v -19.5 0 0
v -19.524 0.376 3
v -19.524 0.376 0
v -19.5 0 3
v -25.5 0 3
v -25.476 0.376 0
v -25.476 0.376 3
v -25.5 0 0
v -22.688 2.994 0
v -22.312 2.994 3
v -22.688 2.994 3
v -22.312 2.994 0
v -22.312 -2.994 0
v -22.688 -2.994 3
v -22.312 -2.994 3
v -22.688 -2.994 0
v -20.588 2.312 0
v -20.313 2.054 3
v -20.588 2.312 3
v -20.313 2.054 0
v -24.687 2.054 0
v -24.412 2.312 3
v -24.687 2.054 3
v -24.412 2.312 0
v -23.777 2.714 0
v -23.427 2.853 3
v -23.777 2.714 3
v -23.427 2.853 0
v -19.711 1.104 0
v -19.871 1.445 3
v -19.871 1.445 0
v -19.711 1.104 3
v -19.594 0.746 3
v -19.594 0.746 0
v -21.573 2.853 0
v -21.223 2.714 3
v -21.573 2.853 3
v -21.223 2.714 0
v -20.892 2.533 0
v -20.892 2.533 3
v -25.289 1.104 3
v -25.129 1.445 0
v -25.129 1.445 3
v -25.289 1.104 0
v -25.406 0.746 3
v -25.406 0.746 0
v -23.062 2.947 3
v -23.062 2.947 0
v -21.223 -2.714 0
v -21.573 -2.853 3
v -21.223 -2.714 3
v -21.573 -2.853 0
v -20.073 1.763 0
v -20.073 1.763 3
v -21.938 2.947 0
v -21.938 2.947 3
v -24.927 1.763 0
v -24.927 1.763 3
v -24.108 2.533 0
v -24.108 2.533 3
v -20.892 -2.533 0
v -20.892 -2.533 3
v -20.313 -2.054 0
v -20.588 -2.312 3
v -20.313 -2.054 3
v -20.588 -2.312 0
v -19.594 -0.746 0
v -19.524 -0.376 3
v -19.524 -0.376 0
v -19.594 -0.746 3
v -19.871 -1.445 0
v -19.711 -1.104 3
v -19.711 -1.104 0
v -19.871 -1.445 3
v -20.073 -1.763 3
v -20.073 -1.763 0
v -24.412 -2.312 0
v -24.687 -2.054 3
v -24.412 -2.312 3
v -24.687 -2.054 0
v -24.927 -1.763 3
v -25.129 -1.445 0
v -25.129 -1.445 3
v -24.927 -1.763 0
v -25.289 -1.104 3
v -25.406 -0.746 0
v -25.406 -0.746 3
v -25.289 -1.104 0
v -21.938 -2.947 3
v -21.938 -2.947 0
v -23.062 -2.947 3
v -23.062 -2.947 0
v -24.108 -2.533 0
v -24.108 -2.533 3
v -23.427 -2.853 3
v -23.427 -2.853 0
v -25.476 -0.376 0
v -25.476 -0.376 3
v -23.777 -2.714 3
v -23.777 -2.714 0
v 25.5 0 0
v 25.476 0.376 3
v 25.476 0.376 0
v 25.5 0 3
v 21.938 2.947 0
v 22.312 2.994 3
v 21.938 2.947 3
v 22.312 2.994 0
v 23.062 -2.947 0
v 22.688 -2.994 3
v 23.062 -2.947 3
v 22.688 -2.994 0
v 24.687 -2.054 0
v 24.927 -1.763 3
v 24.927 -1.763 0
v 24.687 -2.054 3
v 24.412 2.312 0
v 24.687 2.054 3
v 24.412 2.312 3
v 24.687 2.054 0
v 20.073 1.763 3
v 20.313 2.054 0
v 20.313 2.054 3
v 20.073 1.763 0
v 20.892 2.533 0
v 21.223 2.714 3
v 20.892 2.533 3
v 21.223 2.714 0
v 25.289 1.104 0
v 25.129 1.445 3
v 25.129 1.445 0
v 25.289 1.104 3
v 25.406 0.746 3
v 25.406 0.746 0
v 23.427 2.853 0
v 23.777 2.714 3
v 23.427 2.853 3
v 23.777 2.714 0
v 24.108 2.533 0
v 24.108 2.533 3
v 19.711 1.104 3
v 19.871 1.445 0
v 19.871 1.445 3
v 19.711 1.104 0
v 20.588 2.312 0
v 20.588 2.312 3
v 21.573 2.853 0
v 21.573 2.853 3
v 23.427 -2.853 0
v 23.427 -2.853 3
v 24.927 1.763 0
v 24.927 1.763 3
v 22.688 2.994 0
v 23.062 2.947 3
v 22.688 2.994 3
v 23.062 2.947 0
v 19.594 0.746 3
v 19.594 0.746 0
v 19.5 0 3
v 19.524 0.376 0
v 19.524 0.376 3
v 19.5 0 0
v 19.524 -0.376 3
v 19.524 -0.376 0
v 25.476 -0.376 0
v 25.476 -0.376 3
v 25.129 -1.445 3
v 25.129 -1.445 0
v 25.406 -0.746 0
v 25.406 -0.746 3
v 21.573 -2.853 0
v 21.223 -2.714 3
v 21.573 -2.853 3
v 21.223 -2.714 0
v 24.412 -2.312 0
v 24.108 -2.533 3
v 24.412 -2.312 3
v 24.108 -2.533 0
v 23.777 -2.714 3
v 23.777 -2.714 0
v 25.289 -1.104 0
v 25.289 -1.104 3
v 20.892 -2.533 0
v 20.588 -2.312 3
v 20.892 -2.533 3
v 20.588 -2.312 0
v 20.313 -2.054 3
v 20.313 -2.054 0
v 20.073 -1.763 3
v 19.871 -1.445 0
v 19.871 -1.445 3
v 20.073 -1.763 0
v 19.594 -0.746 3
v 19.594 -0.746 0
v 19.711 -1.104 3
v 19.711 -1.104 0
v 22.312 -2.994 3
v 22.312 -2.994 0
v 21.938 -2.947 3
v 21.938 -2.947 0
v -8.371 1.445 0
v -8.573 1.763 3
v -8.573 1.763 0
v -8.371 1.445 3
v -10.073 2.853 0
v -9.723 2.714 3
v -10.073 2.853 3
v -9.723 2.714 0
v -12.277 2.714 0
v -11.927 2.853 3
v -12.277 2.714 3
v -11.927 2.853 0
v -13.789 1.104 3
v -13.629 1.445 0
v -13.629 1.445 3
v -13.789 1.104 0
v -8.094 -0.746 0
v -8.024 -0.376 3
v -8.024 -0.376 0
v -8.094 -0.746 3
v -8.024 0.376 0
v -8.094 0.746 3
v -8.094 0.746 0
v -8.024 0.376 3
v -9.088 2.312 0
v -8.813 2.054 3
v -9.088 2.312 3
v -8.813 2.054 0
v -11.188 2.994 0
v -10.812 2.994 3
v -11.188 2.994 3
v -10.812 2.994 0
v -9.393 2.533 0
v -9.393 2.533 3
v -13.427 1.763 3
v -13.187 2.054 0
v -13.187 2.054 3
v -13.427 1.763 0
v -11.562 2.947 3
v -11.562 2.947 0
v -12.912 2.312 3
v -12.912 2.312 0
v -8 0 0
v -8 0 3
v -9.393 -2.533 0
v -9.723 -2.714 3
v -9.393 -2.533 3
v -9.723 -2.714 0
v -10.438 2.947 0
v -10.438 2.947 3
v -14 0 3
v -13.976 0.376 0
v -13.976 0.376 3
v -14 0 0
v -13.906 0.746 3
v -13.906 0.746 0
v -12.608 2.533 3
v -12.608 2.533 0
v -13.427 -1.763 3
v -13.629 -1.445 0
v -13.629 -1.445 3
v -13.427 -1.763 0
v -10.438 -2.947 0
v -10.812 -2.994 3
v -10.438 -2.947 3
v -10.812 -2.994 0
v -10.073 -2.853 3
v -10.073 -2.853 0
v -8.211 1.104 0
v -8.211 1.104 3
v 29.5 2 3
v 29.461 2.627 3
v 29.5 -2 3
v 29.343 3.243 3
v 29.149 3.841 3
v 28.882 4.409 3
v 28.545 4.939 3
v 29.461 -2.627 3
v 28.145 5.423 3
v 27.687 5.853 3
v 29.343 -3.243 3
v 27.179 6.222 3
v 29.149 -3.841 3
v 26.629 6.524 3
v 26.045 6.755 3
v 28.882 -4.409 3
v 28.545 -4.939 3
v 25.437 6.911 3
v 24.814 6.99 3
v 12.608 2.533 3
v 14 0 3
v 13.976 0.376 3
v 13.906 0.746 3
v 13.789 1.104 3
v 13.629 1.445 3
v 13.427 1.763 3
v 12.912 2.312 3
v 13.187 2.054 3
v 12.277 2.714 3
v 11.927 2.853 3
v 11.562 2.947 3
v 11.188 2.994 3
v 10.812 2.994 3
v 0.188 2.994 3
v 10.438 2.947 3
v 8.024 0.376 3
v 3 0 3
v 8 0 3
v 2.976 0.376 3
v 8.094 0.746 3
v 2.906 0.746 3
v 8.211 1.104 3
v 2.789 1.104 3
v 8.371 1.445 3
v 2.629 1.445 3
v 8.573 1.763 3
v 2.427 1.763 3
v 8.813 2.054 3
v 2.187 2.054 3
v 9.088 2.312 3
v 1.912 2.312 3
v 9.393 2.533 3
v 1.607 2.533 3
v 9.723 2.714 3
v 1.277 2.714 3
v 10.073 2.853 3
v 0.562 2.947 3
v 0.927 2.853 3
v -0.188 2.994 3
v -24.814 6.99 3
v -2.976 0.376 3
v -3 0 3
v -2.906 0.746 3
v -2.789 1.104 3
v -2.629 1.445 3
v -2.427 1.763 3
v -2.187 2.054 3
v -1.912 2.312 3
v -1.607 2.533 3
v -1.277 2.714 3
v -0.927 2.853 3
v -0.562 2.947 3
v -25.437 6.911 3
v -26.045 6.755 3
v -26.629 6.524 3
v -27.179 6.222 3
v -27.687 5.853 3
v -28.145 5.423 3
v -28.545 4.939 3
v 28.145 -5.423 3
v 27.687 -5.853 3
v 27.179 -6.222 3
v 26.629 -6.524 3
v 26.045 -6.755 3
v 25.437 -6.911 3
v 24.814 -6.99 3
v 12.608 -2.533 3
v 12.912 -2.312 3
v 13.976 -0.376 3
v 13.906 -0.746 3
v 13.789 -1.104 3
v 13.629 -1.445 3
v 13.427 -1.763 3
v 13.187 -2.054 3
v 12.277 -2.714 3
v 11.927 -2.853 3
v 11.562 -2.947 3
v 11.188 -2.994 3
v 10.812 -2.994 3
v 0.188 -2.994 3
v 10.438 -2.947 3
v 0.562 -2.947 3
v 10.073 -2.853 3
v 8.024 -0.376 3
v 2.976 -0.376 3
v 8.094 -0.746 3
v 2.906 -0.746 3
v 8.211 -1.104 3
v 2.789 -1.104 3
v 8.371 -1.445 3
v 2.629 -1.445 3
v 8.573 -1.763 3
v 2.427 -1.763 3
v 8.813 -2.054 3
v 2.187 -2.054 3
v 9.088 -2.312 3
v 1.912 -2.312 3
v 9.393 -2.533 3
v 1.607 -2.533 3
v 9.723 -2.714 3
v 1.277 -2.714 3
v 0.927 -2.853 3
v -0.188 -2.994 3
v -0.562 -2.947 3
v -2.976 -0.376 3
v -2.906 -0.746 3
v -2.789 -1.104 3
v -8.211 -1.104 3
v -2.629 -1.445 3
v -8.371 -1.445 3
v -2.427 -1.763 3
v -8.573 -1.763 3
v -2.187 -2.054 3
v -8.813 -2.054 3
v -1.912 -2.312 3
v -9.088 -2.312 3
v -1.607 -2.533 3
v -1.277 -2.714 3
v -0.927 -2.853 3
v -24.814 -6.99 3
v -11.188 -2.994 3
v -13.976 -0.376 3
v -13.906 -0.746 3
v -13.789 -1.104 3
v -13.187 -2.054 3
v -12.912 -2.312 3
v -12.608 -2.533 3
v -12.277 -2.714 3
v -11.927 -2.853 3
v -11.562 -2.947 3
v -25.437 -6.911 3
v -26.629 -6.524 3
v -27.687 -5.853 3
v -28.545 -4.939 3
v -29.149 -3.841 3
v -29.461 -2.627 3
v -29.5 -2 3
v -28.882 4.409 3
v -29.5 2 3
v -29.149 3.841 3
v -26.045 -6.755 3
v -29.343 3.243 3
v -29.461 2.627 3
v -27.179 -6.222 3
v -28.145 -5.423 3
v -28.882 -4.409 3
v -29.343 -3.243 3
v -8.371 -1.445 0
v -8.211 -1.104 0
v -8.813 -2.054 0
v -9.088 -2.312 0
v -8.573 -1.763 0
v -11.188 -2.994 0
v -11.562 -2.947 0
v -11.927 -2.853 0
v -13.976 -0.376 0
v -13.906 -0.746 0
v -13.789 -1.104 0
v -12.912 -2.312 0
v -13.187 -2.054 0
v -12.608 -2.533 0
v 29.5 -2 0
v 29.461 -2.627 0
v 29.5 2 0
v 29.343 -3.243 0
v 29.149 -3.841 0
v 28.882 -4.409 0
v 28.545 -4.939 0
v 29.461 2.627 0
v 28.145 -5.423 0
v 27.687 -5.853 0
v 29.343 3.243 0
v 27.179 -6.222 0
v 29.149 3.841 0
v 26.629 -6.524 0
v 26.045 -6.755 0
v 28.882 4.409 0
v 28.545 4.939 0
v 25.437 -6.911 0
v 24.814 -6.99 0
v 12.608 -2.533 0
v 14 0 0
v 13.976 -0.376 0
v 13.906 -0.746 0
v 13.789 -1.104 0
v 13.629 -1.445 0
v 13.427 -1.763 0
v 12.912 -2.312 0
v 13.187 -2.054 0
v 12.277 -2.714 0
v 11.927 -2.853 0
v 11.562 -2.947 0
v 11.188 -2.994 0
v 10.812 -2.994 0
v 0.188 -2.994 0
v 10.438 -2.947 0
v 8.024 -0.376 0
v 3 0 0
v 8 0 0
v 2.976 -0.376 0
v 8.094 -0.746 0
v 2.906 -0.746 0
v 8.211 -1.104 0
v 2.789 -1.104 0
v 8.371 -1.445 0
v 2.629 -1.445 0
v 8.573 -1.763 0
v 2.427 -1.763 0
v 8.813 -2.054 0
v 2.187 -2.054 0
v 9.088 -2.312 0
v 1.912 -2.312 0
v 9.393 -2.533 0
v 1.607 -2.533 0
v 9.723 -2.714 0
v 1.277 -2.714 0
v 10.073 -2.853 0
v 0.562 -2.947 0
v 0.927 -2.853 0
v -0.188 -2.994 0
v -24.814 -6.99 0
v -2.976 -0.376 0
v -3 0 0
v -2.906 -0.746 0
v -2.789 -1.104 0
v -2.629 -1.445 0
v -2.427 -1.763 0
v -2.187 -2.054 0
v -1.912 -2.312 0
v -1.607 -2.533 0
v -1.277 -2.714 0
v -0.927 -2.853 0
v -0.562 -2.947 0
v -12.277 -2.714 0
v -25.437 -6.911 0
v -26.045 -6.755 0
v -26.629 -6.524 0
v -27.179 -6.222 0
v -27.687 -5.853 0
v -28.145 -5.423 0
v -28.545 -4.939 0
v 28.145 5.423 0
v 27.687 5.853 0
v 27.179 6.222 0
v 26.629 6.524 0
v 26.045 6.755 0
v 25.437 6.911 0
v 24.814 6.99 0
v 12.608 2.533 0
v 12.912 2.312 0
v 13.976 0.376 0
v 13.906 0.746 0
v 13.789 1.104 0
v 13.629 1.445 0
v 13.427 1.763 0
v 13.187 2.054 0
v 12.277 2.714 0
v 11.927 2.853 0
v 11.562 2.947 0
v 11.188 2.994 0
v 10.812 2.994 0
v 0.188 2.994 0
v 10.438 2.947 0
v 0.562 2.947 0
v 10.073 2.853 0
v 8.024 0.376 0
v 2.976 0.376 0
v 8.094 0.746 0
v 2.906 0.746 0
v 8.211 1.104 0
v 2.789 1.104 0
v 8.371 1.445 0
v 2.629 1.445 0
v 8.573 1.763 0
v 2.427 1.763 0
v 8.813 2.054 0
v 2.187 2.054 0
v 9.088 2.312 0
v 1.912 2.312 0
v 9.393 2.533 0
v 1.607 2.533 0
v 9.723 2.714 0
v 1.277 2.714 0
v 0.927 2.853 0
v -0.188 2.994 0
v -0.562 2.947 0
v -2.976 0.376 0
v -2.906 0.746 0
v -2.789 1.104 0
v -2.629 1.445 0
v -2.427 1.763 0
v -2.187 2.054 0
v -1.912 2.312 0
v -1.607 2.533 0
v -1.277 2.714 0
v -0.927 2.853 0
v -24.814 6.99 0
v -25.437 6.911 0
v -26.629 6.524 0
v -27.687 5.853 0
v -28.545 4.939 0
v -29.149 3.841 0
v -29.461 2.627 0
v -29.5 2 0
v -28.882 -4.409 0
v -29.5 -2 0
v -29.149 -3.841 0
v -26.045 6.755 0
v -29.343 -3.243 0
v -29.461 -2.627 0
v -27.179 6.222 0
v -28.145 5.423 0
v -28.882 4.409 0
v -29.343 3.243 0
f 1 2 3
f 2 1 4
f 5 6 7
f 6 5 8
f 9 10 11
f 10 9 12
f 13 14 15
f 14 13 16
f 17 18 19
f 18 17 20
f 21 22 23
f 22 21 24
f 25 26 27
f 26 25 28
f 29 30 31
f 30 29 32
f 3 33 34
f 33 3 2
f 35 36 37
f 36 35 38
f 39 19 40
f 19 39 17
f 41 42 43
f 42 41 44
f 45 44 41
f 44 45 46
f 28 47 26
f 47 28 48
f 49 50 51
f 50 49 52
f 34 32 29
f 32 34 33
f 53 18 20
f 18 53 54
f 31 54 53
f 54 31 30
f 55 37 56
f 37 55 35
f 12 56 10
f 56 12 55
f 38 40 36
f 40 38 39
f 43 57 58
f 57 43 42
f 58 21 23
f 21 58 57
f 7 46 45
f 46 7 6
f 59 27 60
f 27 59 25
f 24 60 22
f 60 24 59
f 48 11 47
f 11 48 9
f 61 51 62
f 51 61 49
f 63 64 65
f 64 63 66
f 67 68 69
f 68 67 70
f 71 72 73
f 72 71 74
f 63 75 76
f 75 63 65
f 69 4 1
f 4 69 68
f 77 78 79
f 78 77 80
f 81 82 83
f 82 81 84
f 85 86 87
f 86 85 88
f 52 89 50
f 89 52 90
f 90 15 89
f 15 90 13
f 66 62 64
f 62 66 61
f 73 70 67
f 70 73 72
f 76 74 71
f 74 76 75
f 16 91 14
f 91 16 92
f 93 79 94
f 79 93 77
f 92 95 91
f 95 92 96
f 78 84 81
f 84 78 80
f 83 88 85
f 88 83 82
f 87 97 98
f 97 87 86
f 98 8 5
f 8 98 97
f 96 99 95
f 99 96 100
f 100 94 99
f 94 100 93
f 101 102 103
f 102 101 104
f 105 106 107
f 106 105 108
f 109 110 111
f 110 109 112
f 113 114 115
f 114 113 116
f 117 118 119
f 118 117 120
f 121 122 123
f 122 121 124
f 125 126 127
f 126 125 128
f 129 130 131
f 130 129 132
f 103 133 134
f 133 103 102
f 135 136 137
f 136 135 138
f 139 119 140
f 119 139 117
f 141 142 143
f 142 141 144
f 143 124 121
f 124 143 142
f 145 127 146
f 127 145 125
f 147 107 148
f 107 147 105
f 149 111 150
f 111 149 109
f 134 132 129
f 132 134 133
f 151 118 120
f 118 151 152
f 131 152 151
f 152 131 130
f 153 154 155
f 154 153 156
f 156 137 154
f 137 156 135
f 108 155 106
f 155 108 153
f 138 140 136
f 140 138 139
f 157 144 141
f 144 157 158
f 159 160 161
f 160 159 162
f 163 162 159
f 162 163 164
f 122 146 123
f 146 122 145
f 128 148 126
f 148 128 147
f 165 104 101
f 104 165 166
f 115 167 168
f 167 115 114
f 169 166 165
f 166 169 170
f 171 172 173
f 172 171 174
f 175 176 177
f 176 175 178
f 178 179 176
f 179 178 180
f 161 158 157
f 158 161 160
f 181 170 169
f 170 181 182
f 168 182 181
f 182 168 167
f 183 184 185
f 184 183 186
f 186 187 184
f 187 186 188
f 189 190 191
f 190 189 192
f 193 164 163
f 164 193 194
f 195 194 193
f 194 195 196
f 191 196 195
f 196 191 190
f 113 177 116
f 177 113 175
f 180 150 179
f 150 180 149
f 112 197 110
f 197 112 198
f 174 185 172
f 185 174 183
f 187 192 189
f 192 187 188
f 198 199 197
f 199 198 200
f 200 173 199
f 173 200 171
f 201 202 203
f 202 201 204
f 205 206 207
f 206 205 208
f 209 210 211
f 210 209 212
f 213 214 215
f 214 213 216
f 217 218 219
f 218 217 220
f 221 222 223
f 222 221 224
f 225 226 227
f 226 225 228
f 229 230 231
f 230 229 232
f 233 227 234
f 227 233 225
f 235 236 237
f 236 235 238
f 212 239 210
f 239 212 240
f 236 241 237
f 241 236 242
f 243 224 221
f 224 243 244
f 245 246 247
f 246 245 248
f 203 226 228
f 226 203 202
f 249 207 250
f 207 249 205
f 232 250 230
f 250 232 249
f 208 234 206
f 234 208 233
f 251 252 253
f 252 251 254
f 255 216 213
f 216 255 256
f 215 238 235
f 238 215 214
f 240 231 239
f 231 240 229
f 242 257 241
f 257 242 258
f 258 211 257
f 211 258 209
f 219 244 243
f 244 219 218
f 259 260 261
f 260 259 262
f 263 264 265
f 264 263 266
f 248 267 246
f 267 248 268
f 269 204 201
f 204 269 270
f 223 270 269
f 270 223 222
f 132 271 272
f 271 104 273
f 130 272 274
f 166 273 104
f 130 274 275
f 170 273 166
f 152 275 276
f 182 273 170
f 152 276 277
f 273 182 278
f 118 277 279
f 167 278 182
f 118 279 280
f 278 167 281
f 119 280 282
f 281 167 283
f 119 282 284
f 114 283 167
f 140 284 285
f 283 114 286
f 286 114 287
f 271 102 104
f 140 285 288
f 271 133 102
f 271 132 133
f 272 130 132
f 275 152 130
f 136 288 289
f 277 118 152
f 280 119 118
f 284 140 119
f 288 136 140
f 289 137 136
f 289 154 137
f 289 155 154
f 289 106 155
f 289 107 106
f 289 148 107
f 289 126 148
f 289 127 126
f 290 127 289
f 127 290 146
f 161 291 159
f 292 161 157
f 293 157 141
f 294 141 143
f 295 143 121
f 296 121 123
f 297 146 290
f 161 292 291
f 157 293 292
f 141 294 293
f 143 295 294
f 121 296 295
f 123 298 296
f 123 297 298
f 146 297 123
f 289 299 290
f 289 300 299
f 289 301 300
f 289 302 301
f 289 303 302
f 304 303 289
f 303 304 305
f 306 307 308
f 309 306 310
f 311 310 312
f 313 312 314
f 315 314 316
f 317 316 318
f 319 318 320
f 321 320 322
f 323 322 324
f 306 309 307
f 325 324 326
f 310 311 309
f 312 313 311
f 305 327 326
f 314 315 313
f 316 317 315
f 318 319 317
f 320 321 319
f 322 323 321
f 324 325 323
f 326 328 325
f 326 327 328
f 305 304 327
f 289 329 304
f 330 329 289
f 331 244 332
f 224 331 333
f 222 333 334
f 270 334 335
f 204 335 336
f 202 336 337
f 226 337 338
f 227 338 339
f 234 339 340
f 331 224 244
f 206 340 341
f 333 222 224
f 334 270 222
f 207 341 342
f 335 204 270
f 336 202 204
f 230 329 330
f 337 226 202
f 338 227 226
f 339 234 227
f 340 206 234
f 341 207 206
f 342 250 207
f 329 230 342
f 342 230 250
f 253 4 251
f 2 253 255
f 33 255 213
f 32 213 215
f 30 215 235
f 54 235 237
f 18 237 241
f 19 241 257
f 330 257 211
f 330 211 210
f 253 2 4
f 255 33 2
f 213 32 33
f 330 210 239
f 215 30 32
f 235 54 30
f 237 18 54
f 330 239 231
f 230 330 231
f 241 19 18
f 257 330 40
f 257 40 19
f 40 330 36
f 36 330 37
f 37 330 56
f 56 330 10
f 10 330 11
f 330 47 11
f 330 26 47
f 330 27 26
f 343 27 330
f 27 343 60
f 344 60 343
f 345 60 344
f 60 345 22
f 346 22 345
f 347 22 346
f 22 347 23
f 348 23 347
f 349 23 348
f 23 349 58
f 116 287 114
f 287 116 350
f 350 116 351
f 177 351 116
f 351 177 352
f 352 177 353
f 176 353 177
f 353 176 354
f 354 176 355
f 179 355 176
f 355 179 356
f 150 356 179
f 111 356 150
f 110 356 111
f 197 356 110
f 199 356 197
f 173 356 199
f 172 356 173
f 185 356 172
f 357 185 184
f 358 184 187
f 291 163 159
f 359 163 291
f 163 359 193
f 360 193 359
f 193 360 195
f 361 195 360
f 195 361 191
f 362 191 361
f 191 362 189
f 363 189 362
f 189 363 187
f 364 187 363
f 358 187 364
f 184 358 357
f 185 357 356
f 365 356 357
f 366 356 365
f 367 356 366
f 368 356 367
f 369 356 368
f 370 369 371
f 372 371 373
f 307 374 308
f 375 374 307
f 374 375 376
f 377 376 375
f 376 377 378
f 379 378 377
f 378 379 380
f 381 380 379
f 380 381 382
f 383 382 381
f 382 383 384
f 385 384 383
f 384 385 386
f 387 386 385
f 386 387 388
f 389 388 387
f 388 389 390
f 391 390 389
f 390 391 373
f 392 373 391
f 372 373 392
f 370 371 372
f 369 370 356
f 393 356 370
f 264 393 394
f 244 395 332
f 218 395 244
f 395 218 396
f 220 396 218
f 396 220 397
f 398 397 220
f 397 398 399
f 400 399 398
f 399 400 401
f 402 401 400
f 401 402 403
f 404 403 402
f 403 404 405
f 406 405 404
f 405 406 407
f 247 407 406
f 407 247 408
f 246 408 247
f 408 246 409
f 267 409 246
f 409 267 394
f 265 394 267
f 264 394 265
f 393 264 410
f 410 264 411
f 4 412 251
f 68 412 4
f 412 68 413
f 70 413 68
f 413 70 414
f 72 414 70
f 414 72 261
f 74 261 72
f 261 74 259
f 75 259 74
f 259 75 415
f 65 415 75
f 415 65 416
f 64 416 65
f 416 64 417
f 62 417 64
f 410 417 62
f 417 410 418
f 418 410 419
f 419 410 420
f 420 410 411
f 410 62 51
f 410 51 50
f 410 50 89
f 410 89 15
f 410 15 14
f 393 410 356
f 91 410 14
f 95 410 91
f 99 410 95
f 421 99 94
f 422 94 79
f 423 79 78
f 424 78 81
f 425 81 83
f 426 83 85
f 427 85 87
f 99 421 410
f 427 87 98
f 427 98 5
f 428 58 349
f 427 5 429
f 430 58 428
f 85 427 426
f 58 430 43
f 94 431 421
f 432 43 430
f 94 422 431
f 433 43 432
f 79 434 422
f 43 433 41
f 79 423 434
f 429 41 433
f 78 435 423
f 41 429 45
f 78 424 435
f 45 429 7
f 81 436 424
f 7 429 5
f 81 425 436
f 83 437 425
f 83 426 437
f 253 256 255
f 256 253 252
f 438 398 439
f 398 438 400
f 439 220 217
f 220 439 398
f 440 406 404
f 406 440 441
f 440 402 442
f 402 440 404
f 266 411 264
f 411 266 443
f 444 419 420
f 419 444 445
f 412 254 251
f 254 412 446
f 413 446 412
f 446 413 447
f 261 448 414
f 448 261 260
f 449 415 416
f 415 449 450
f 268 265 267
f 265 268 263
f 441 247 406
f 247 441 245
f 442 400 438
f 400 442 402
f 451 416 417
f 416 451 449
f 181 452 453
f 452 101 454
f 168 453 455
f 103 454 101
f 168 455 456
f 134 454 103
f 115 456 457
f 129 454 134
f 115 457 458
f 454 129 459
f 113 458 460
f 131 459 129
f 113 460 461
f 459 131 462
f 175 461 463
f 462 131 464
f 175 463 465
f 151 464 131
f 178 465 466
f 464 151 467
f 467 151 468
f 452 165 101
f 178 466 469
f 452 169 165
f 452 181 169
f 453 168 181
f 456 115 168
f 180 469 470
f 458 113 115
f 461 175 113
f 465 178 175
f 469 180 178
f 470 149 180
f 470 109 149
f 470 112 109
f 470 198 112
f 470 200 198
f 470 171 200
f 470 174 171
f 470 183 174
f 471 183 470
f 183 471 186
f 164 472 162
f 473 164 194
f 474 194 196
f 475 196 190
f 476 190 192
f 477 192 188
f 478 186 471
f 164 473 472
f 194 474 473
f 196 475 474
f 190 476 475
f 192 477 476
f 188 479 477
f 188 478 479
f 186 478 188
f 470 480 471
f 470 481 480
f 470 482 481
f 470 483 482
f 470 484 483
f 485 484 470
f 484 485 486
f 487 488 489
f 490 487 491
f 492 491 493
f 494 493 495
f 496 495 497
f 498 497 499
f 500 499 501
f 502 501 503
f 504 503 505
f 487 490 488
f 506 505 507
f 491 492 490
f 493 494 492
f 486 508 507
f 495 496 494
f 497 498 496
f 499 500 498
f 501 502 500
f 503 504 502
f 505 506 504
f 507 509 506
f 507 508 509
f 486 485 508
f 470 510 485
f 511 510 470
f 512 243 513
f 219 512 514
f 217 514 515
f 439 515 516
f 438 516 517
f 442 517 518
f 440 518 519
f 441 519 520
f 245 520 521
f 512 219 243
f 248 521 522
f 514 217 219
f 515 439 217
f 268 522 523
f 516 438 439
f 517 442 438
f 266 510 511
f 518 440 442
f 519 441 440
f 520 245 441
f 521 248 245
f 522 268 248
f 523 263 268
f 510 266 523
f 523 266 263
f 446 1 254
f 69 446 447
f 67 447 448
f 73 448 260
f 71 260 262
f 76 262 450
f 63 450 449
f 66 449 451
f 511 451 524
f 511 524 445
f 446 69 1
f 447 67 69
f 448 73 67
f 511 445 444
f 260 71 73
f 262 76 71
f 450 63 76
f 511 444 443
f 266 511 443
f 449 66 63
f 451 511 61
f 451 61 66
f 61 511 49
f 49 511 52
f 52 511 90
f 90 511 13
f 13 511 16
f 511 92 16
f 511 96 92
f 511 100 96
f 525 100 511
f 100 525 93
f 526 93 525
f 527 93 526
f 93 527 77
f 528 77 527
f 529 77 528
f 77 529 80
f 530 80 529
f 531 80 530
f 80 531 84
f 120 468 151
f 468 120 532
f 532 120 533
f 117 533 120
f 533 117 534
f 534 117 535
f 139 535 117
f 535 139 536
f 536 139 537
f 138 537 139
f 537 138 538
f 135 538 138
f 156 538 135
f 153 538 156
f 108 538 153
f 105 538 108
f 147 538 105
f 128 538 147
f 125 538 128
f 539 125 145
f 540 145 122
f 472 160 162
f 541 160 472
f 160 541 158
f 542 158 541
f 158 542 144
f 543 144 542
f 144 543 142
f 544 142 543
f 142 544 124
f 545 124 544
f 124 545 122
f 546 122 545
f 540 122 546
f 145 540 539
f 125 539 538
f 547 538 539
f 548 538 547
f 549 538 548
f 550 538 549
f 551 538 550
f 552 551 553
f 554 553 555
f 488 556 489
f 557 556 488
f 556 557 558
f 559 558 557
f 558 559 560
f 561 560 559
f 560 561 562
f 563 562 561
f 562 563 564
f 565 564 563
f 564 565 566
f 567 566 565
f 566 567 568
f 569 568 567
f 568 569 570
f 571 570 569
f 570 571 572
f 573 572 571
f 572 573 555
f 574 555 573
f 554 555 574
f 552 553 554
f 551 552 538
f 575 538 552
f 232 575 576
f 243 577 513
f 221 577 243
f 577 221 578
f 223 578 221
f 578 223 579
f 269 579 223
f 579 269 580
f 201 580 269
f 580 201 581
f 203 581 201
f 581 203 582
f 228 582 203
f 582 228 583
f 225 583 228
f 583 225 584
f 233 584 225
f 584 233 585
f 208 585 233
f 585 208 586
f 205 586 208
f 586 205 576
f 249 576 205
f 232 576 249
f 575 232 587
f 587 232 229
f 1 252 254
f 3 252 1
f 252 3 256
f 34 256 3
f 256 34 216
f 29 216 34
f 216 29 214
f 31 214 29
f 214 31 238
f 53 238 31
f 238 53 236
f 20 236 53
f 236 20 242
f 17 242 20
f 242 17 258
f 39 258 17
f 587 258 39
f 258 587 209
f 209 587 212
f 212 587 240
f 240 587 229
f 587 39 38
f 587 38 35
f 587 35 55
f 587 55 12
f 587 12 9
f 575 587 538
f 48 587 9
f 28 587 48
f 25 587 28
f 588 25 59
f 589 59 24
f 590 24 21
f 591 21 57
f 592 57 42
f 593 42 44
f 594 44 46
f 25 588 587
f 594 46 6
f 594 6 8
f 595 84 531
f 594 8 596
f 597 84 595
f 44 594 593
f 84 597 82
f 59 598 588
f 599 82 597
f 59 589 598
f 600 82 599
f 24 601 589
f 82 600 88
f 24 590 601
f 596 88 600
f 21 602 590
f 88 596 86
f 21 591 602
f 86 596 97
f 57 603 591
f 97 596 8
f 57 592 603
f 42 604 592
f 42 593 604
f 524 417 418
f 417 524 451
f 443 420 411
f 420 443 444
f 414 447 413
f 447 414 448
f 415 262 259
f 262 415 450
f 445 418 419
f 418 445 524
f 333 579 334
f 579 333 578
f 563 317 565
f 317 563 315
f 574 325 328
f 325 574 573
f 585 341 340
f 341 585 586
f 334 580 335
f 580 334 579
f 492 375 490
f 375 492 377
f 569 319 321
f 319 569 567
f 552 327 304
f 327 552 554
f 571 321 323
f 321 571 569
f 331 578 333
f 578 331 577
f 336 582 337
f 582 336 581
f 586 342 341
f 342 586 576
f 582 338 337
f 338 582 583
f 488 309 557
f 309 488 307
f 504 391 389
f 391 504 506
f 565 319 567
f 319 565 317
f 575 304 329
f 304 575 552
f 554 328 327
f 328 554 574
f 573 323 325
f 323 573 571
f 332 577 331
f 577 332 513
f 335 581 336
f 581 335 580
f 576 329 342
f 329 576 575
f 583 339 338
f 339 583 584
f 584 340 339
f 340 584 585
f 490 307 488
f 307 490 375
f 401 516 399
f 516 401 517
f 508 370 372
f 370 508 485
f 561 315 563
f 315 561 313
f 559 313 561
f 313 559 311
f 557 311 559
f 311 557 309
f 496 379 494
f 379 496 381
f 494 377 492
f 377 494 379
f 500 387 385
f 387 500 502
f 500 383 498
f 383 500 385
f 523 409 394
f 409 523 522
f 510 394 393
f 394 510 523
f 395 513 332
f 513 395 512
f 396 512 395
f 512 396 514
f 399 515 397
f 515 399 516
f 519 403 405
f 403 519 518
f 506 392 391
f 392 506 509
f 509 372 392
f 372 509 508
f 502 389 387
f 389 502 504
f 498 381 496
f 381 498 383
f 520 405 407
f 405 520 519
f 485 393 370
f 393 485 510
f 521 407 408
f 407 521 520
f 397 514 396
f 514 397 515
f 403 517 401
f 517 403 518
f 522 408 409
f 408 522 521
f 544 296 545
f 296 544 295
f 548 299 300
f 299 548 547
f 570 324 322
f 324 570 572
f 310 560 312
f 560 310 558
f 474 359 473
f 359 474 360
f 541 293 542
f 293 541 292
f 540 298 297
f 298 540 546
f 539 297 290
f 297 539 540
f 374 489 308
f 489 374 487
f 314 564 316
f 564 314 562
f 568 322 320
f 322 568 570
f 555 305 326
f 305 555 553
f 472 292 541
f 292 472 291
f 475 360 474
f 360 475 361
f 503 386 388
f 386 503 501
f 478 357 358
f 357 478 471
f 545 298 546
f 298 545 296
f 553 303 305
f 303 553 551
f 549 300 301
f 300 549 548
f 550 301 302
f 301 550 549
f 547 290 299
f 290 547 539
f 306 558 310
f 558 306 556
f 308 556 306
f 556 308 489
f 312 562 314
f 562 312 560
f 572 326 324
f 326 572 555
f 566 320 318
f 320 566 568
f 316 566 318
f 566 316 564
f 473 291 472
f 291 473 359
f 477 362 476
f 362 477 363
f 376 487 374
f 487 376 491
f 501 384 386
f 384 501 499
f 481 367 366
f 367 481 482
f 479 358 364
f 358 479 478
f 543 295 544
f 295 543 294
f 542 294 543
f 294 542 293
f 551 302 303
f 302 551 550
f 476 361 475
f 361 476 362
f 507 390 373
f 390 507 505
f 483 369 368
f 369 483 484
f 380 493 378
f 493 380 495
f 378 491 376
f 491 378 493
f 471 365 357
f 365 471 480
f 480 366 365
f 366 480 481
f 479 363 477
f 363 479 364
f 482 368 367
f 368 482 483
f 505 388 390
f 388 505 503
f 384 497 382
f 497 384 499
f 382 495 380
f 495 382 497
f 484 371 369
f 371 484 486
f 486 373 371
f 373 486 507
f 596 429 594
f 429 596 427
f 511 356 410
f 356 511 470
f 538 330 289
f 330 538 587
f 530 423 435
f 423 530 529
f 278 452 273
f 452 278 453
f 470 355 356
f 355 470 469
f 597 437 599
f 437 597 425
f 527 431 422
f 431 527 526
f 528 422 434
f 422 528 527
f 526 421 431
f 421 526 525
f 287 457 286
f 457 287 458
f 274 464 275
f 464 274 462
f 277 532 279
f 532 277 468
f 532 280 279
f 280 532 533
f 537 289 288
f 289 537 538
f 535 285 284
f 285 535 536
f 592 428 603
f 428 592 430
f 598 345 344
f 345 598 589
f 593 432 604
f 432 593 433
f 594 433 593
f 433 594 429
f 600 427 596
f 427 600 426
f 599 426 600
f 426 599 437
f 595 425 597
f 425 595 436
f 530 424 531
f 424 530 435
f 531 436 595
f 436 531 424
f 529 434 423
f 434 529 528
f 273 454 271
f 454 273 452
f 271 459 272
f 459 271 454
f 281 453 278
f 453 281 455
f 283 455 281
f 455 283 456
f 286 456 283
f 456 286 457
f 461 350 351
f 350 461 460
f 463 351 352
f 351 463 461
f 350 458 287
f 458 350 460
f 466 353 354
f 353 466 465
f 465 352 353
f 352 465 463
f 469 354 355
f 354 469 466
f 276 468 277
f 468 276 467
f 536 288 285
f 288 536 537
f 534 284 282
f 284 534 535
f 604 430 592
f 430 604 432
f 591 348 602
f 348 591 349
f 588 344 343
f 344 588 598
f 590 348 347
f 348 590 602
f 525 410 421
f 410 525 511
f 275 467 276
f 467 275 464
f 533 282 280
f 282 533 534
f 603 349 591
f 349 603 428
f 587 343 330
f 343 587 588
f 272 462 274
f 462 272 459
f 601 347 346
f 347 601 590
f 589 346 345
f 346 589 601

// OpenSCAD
$fn = 50;


difference() {
	union() {
		hull() {
			translate(v = [-24.5000000000, 2.0000000000, 0]) {
				cylinder(h = 3, r = 5);
			}
			translate(v = [24.5000000000, 2.0000000000, 0]) {
				cylinder(h = 3, r = 5);
			}
			translate(v = [-24.5000000000, -2.0000000000, 0]) {
				cylinder(h = 3, r = 5);
			}
			translate(v = [24.5000000000, -2.0000000000, 0]) {
				cylinder(h = 3, r = 5);
			}
		}
	}
	union() {
		#translate(v = [-22.5000000000, 0.0000000000, 0]) {
			cylinder(h = 3, r = 3.0000000000);
		}
		#translate(v = [22.5000000000, 0.0000000000, 0]) {
			cylinder(h = 3, r = 3.0000000000);
		}
		#translate(v = [-22.5000000000, 0.0000000000, -100.0000000000]) {
			cylinder(h = 200, r = 3.0000000000);
		}
		#translate(v = [-22.5000000000, 0.0000000000, -100.0000000000]) {
			cylinder(h = 200, r = 3.0000000000);
		}
		#translate(v = [22.5000000000, 0.0000000000, -100.0000000000]) {
			cylinder(h = 200, r = 3.0000000000);
		}
		#translate(v = [22.5000000000, 0.0000000000, -100.0000000000]) {
			cylinder(h = 200, r = 3.0000000000);
		}
		#translate(v = [-22.5000000000, 0.0000000000, 0]) {
			cylinder(h = 3, r = 1.5000000000);
		}
		#translate(v = [22.5000000000, 0.0000000000, 0]) {
			cylinder(h = 3, r = 1.5000000000);
		}
		#translate(v = [-22.5000000000, 0.0000000000, 0]) {
			cylinder(h = 3, r = 1.5000000000);
		}
		#translate(v = [22.5000000000, 0.0000000000, 0]) {
			cylinder(h = 3, r = 1.5000000000);
		}
		#translate(v = [-22.5000000000, 0.0000000000, 0]) {
			cylinder(h = 3, r = 1.5000000000);
		}
		#translate(v = [22.5000000000, 0.0000000000, 0]) {
			cylinder(h = 3, r = 1.5000000000);
		}
		#translate(v = [-11.0000000000, 0, 0]) {
			cylinder(h = 3, r = 3.0000000000);
		}
		#cylinder(h = 3, r = 3.0000000000);
		#translate(v = [11.0000000000, 0, 0]) {
			cylinder(h = 3, r = 3.0000000000);
		}
	}
}
